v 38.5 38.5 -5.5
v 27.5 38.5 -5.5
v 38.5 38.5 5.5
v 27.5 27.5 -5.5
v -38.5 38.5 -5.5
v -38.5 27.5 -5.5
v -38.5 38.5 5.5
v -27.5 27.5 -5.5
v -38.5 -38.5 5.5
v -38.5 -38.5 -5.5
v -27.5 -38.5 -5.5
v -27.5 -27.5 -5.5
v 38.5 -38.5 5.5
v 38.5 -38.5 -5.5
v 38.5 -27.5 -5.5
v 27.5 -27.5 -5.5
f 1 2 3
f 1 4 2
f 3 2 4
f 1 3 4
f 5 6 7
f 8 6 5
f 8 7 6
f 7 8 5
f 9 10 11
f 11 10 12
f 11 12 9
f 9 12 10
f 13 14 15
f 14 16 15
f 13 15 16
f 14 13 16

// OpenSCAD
// file: def.scad
block_size_3 = 19;
block_size_4 = 16;
block_size_5 = 14;
block_size_6 = 12.5;
block_size_7 = 11;
block_size_8 = 10;

inf = 1000;

round_radius = 1;
sticker_margin = 2.5;
sticker_round_radius = 0.75;

module _block(size) {
    minkowski() {
        cube([size - round_radius * 2, size - round_radius * 2, size - round_radius * 2], center = true);
        sphere(r = round_radius, $fn = 24);
    }
}

module _selector_0(size) {
    cube([size - 0.2, size - 0.2, size - 0.2], center = true);
}

module _sticker(size) {
    minkowski() {
        cube([size - sticker_margin * 2, size - sticker_margin * 2, 0.1], center = true);
        cylinder(r = sticker_round_radius, h = 0.1, $fn = 24);
    }
}

module _selector_corner_cw(size) {
    difference() {
        cube([size, size, size], center = true);
        rotate([0, -45, 0])
            translate([-inf, -inf, 0])
                cube([inf * 2, inf * 2, inf]);
        rotate([90, 0, 45])
            translate([-inf, -inf, 0])
                cube([inf * 2, inf * 2, inf]);
    }
}

module _selector_corner_ccw(size) {
    difference() {
        cube([size, size, size], center = true);
        rotate([45, 0, 0])
            translate([-inf, -inf, 0])
                cube([inf * 2, inf * 2, inf]);
        rotate([0, -90, -45])
            translate([-inf, -inf, 0])
                cube([inf * 2, inf * 2, inf]);
    }
}

module _selector_edge_cw(size) {
    difference() {
        cube([size, size, size], center = true);
        rotate([90, 0, 45])
            translate([-inf, -inf, 0])
                cube([inf * 2, inf * 2, inf]);
    }
}

module _selector_edge_ccw(size) {
    difference() {
        cube([size, size, size], center = true);
        rotate([0, -90, -45])
            translate([-inf, -inf, 0])
                cube([inf * 2, inf * 2, inf]);
    }
}
// main file
include <def.scad>

for (deg = [0 : 90 : 270])
    rotate([0, 0, deg])
        translate([block_size_7 * 3, block_size_7 * 3, 0])
            _selector_corner_cw(block_size_7);
